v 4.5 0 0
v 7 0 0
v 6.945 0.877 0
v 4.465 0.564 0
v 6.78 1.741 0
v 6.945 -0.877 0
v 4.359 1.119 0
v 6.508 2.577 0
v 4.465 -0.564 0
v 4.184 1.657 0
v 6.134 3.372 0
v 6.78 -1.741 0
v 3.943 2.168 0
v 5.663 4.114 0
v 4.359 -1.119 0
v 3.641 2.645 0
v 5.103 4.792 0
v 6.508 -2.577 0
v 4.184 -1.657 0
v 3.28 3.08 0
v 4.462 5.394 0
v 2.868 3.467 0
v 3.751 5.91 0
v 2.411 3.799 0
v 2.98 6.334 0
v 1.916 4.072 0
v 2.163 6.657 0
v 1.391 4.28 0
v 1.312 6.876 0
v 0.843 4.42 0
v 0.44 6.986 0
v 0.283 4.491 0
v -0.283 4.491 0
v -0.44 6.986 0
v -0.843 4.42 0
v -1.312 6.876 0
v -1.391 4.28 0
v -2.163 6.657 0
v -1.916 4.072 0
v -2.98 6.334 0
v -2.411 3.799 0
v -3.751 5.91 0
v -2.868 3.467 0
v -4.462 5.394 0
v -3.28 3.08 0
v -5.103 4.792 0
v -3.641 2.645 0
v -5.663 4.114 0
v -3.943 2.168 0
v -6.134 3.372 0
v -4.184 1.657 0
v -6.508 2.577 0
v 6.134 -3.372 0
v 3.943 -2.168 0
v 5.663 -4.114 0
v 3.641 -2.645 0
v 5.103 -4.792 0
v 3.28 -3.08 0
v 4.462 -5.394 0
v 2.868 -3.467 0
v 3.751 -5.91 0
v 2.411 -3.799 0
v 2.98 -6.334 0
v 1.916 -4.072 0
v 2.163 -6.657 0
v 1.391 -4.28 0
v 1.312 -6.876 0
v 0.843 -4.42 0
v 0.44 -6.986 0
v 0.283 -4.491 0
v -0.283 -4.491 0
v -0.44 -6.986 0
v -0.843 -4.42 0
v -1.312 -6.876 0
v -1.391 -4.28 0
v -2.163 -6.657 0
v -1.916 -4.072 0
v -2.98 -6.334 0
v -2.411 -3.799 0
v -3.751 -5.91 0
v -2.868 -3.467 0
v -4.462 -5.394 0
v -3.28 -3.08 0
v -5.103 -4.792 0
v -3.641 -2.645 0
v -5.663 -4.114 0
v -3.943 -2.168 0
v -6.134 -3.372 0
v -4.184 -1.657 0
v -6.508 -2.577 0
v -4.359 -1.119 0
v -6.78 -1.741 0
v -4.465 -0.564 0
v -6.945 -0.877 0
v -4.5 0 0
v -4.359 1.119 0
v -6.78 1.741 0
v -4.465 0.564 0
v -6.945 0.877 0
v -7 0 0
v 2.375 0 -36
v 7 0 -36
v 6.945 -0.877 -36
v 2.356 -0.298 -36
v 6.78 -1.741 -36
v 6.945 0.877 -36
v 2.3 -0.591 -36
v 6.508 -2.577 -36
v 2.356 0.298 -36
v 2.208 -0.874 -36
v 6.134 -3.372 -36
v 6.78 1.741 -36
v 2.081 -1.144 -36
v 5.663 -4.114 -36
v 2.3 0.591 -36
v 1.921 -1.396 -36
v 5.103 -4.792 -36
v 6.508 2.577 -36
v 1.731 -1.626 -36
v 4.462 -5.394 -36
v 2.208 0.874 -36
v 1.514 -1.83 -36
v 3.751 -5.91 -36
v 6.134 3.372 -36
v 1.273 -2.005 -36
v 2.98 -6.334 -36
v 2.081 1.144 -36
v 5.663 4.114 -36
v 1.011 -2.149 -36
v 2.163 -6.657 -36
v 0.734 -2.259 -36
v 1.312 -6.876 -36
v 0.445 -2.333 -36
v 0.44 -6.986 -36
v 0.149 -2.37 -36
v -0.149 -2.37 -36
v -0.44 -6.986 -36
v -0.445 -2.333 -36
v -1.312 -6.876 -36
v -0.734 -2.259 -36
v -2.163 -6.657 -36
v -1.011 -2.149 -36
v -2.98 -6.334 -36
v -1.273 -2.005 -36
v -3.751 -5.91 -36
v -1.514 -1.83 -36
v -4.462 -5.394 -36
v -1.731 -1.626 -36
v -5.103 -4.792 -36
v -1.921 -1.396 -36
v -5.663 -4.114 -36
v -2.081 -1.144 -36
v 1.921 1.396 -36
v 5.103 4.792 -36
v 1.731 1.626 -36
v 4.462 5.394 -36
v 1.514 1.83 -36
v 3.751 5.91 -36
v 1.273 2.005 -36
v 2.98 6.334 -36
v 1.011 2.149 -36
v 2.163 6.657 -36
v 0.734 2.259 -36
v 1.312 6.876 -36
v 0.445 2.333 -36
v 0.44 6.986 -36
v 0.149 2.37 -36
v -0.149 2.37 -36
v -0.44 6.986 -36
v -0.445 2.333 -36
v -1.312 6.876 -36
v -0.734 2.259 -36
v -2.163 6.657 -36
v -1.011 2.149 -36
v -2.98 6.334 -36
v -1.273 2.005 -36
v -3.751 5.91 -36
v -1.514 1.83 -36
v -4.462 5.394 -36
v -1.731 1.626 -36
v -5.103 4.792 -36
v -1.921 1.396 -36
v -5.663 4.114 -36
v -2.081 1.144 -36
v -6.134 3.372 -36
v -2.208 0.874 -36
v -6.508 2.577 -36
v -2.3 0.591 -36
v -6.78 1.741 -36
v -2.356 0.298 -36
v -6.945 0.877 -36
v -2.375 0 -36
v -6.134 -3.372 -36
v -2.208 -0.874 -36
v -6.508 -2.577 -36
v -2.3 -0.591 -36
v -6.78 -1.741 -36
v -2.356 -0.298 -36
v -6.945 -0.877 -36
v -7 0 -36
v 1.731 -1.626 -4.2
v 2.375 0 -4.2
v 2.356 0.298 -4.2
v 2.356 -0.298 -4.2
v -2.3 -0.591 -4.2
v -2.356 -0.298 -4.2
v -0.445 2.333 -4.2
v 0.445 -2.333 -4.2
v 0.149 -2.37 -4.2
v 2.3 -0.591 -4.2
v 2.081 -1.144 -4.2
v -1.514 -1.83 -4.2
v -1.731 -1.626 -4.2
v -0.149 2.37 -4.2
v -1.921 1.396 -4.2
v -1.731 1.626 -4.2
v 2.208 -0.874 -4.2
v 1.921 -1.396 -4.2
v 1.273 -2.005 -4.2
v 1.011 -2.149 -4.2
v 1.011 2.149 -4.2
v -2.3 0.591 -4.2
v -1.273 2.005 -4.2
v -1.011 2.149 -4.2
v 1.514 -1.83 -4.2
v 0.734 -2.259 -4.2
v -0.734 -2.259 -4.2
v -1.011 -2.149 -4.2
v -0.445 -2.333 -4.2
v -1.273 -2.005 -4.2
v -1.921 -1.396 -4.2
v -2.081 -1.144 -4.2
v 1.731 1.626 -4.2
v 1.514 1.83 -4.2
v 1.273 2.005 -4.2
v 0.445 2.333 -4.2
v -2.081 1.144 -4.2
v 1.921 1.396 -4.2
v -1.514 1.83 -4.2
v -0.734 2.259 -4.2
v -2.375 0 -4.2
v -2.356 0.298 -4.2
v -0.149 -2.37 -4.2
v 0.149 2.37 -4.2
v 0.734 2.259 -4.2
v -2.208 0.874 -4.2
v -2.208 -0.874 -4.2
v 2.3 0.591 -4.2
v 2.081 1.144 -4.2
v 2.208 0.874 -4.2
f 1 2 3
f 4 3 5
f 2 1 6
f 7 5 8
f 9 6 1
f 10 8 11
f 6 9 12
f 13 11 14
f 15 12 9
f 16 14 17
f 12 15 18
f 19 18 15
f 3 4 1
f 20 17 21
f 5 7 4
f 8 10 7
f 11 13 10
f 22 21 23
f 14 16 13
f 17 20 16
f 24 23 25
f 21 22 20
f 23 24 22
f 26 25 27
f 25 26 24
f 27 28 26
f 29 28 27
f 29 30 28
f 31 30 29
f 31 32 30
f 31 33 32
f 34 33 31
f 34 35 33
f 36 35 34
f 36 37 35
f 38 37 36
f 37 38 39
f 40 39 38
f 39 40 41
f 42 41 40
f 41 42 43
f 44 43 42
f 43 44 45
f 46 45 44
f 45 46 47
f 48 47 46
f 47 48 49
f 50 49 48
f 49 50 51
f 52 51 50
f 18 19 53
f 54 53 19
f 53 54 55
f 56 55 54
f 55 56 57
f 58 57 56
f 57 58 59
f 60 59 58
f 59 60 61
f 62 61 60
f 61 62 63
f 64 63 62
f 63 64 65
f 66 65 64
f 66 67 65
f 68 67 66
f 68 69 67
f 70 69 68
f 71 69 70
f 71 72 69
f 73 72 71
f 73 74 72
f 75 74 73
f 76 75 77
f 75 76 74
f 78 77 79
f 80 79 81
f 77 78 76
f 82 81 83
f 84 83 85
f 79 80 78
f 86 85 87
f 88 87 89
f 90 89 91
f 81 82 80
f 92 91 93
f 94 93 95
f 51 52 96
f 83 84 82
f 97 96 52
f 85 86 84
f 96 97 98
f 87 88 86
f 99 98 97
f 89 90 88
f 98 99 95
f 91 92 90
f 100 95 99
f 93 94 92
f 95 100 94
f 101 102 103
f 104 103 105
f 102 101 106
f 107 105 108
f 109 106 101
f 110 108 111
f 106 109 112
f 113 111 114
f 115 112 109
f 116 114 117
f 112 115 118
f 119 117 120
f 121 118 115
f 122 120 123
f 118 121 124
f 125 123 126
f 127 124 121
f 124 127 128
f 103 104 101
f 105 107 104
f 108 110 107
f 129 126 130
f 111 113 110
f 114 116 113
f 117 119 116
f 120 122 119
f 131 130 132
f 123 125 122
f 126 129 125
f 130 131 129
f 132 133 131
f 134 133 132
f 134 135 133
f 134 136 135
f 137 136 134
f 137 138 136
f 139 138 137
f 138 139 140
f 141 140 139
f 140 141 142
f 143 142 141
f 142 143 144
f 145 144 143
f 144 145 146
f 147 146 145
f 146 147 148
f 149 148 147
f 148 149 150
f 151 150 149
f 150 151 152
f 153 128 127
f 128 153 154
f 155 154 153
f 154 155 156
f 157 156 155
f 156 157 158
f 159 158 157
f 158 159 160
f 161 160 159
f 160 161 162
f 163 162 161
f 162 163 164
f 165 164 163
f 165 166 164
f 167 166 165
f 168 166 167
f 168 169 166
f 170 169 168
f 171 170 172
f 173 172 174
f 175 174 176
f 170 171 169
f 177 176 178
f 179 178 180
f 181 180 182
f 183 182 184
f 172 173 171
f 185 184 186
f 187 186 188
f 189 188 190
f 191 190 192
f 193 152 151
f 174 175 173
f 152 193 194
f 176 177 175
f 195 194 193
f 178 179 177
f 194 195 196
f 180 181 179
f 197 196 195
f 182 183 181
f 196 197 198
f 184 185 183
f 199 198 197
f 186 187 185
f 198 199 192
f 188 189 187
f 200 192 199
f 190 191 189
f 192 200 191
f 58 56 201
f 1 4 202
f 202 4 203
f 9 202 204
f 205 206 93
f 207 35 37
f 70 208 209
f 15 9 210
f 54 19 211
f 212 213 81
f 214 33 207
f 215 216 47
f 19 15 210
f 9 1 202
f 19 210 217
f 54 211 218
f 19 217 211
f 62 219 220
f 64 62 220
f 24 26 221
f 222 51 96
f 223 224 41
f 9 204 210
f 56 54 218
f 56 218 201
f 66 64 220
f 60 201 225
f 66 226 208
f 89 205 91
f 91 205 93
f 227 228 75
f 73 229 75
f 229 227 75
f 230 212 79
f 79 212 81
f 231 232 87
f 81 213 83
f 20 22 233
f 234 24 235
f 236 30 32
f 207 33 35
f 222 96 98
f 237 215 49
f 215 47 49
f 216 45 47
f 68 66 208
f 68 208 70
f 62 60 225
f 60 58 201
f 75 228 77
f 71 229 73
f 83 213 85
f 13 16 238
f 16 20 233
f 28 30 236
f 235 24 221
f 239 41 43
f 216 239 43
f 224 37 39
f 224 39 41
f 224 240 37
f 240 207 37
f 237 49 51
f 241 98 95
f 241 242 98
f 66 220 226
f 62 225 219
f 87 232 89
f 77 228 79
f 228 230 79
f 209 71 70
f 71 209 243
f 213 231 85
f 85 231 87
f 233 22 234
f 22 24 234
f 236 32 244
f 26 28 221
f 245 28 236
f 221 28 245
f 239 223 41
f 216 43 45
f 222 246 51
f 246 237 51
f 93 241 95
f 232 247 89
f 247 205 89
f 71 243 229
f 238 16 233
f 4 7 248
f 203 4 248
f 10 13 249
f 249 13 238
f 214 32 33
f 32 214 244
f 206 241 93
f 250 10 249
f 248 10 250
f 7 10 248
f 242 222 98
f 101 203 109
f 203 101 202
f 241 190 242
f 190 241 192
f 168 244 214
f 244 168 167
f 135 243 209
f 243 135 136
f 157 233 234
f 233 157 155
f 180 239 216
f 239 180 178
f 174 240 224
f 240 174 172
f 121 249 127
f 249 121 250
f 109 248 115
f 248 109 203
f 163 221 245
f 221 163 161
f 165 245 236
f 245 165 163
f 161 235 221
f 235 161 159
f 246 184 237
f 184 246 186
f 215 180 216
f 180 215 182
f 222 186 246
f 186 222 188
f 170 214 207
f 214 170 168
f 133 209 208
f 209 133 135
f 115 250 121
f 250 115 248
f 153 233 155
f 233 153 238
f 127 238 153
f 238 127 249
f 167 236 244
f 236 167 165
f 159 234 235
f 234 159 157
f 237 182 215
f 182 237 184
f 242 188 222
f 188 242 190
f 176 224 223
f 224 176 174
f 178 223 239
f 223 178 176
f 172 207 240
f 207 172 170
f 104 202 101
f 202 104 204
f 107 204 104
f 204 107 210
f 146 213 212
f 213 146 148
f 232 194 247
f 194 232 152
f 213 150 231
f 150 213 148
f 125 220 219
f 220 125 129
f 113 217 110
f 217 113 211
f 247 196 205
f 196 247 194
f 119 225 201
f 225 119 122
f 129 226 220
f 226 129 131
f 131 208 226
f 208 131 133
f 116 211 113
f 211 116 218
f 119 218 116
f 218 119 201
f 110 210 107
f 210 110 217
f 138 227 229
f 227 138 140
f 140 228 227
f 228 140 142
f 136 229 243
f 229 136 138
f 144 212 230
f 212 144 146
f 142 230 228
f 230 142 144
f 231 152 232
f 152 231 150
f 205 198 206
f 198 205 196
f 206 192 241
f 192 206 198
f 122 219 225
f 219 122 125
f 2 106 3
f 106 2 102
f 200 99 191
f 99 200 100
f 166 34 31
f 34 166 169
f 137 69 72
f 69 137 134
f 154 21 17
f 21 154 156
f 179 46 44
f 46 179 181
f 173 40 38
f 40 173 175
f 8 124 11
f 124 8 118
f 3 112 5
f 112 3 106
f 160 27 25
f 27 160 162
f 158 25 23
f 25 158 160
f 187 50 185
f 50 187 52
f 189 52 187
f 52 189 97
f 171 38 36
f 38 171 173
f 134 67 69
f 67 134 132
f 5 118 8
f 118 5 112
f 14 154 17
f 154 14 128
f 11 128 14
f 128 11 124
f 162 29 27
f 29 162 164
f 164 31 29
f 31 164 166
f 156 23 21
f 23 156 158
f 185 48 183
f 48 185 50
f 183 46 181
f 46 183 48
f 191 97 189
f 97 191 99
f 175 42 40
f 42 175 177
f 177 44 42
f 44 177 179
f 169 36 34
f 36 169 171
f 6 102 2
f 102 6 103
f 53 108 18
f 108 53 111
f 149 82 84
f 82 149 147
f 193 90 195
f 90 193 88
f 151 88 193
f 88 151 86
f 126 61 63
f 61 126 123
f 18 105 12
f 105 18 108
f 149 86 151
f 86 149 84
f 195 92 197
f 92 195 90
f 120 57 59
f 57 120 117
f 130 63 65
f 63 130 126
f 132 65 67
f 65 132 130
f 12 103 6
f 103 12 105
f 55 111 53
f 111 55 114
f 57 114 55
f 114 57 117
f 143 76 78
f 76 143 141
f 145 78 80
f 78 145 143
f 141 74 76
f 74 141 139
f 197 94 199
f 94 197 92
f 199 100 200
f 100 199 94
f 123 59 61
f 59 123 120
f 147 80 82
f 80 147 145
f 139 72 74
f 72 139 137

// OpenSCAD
$fn = 50;


difference() {
	union() {
		translate(v = [0, 0, -36.0000000000]) {
			cylinder(h = 36, r = 7.0000000000);
		}
	}
	union() {
		translate(v = [0, 0, 0]) {
			rotate(a = [0, 0, 0]) {
				difference() {
					union() {
						#translate(v = [0, 0, -36.0000000000]) {
							cylinder(h = 36, r = 2.2500000000);
						}
						#translate(v = [0, 0, -4.2000000000]) {
							cylinder(h = 4.2000000000, r = 7.0000000000, r1 = 2.3750000000, r2 = 4.5000000000);
						}
						#translate(v = [0, 0, -36.0000000000]) {
							cylinder(h = 36, r = 2.3750000000);
						}
						#translate(v = [0, 0, -36.0000000000]) {
							cylinder(h = 36, r = 2.2500000000);
						}
					}
					union();
				}
			}
		}
	}
}
